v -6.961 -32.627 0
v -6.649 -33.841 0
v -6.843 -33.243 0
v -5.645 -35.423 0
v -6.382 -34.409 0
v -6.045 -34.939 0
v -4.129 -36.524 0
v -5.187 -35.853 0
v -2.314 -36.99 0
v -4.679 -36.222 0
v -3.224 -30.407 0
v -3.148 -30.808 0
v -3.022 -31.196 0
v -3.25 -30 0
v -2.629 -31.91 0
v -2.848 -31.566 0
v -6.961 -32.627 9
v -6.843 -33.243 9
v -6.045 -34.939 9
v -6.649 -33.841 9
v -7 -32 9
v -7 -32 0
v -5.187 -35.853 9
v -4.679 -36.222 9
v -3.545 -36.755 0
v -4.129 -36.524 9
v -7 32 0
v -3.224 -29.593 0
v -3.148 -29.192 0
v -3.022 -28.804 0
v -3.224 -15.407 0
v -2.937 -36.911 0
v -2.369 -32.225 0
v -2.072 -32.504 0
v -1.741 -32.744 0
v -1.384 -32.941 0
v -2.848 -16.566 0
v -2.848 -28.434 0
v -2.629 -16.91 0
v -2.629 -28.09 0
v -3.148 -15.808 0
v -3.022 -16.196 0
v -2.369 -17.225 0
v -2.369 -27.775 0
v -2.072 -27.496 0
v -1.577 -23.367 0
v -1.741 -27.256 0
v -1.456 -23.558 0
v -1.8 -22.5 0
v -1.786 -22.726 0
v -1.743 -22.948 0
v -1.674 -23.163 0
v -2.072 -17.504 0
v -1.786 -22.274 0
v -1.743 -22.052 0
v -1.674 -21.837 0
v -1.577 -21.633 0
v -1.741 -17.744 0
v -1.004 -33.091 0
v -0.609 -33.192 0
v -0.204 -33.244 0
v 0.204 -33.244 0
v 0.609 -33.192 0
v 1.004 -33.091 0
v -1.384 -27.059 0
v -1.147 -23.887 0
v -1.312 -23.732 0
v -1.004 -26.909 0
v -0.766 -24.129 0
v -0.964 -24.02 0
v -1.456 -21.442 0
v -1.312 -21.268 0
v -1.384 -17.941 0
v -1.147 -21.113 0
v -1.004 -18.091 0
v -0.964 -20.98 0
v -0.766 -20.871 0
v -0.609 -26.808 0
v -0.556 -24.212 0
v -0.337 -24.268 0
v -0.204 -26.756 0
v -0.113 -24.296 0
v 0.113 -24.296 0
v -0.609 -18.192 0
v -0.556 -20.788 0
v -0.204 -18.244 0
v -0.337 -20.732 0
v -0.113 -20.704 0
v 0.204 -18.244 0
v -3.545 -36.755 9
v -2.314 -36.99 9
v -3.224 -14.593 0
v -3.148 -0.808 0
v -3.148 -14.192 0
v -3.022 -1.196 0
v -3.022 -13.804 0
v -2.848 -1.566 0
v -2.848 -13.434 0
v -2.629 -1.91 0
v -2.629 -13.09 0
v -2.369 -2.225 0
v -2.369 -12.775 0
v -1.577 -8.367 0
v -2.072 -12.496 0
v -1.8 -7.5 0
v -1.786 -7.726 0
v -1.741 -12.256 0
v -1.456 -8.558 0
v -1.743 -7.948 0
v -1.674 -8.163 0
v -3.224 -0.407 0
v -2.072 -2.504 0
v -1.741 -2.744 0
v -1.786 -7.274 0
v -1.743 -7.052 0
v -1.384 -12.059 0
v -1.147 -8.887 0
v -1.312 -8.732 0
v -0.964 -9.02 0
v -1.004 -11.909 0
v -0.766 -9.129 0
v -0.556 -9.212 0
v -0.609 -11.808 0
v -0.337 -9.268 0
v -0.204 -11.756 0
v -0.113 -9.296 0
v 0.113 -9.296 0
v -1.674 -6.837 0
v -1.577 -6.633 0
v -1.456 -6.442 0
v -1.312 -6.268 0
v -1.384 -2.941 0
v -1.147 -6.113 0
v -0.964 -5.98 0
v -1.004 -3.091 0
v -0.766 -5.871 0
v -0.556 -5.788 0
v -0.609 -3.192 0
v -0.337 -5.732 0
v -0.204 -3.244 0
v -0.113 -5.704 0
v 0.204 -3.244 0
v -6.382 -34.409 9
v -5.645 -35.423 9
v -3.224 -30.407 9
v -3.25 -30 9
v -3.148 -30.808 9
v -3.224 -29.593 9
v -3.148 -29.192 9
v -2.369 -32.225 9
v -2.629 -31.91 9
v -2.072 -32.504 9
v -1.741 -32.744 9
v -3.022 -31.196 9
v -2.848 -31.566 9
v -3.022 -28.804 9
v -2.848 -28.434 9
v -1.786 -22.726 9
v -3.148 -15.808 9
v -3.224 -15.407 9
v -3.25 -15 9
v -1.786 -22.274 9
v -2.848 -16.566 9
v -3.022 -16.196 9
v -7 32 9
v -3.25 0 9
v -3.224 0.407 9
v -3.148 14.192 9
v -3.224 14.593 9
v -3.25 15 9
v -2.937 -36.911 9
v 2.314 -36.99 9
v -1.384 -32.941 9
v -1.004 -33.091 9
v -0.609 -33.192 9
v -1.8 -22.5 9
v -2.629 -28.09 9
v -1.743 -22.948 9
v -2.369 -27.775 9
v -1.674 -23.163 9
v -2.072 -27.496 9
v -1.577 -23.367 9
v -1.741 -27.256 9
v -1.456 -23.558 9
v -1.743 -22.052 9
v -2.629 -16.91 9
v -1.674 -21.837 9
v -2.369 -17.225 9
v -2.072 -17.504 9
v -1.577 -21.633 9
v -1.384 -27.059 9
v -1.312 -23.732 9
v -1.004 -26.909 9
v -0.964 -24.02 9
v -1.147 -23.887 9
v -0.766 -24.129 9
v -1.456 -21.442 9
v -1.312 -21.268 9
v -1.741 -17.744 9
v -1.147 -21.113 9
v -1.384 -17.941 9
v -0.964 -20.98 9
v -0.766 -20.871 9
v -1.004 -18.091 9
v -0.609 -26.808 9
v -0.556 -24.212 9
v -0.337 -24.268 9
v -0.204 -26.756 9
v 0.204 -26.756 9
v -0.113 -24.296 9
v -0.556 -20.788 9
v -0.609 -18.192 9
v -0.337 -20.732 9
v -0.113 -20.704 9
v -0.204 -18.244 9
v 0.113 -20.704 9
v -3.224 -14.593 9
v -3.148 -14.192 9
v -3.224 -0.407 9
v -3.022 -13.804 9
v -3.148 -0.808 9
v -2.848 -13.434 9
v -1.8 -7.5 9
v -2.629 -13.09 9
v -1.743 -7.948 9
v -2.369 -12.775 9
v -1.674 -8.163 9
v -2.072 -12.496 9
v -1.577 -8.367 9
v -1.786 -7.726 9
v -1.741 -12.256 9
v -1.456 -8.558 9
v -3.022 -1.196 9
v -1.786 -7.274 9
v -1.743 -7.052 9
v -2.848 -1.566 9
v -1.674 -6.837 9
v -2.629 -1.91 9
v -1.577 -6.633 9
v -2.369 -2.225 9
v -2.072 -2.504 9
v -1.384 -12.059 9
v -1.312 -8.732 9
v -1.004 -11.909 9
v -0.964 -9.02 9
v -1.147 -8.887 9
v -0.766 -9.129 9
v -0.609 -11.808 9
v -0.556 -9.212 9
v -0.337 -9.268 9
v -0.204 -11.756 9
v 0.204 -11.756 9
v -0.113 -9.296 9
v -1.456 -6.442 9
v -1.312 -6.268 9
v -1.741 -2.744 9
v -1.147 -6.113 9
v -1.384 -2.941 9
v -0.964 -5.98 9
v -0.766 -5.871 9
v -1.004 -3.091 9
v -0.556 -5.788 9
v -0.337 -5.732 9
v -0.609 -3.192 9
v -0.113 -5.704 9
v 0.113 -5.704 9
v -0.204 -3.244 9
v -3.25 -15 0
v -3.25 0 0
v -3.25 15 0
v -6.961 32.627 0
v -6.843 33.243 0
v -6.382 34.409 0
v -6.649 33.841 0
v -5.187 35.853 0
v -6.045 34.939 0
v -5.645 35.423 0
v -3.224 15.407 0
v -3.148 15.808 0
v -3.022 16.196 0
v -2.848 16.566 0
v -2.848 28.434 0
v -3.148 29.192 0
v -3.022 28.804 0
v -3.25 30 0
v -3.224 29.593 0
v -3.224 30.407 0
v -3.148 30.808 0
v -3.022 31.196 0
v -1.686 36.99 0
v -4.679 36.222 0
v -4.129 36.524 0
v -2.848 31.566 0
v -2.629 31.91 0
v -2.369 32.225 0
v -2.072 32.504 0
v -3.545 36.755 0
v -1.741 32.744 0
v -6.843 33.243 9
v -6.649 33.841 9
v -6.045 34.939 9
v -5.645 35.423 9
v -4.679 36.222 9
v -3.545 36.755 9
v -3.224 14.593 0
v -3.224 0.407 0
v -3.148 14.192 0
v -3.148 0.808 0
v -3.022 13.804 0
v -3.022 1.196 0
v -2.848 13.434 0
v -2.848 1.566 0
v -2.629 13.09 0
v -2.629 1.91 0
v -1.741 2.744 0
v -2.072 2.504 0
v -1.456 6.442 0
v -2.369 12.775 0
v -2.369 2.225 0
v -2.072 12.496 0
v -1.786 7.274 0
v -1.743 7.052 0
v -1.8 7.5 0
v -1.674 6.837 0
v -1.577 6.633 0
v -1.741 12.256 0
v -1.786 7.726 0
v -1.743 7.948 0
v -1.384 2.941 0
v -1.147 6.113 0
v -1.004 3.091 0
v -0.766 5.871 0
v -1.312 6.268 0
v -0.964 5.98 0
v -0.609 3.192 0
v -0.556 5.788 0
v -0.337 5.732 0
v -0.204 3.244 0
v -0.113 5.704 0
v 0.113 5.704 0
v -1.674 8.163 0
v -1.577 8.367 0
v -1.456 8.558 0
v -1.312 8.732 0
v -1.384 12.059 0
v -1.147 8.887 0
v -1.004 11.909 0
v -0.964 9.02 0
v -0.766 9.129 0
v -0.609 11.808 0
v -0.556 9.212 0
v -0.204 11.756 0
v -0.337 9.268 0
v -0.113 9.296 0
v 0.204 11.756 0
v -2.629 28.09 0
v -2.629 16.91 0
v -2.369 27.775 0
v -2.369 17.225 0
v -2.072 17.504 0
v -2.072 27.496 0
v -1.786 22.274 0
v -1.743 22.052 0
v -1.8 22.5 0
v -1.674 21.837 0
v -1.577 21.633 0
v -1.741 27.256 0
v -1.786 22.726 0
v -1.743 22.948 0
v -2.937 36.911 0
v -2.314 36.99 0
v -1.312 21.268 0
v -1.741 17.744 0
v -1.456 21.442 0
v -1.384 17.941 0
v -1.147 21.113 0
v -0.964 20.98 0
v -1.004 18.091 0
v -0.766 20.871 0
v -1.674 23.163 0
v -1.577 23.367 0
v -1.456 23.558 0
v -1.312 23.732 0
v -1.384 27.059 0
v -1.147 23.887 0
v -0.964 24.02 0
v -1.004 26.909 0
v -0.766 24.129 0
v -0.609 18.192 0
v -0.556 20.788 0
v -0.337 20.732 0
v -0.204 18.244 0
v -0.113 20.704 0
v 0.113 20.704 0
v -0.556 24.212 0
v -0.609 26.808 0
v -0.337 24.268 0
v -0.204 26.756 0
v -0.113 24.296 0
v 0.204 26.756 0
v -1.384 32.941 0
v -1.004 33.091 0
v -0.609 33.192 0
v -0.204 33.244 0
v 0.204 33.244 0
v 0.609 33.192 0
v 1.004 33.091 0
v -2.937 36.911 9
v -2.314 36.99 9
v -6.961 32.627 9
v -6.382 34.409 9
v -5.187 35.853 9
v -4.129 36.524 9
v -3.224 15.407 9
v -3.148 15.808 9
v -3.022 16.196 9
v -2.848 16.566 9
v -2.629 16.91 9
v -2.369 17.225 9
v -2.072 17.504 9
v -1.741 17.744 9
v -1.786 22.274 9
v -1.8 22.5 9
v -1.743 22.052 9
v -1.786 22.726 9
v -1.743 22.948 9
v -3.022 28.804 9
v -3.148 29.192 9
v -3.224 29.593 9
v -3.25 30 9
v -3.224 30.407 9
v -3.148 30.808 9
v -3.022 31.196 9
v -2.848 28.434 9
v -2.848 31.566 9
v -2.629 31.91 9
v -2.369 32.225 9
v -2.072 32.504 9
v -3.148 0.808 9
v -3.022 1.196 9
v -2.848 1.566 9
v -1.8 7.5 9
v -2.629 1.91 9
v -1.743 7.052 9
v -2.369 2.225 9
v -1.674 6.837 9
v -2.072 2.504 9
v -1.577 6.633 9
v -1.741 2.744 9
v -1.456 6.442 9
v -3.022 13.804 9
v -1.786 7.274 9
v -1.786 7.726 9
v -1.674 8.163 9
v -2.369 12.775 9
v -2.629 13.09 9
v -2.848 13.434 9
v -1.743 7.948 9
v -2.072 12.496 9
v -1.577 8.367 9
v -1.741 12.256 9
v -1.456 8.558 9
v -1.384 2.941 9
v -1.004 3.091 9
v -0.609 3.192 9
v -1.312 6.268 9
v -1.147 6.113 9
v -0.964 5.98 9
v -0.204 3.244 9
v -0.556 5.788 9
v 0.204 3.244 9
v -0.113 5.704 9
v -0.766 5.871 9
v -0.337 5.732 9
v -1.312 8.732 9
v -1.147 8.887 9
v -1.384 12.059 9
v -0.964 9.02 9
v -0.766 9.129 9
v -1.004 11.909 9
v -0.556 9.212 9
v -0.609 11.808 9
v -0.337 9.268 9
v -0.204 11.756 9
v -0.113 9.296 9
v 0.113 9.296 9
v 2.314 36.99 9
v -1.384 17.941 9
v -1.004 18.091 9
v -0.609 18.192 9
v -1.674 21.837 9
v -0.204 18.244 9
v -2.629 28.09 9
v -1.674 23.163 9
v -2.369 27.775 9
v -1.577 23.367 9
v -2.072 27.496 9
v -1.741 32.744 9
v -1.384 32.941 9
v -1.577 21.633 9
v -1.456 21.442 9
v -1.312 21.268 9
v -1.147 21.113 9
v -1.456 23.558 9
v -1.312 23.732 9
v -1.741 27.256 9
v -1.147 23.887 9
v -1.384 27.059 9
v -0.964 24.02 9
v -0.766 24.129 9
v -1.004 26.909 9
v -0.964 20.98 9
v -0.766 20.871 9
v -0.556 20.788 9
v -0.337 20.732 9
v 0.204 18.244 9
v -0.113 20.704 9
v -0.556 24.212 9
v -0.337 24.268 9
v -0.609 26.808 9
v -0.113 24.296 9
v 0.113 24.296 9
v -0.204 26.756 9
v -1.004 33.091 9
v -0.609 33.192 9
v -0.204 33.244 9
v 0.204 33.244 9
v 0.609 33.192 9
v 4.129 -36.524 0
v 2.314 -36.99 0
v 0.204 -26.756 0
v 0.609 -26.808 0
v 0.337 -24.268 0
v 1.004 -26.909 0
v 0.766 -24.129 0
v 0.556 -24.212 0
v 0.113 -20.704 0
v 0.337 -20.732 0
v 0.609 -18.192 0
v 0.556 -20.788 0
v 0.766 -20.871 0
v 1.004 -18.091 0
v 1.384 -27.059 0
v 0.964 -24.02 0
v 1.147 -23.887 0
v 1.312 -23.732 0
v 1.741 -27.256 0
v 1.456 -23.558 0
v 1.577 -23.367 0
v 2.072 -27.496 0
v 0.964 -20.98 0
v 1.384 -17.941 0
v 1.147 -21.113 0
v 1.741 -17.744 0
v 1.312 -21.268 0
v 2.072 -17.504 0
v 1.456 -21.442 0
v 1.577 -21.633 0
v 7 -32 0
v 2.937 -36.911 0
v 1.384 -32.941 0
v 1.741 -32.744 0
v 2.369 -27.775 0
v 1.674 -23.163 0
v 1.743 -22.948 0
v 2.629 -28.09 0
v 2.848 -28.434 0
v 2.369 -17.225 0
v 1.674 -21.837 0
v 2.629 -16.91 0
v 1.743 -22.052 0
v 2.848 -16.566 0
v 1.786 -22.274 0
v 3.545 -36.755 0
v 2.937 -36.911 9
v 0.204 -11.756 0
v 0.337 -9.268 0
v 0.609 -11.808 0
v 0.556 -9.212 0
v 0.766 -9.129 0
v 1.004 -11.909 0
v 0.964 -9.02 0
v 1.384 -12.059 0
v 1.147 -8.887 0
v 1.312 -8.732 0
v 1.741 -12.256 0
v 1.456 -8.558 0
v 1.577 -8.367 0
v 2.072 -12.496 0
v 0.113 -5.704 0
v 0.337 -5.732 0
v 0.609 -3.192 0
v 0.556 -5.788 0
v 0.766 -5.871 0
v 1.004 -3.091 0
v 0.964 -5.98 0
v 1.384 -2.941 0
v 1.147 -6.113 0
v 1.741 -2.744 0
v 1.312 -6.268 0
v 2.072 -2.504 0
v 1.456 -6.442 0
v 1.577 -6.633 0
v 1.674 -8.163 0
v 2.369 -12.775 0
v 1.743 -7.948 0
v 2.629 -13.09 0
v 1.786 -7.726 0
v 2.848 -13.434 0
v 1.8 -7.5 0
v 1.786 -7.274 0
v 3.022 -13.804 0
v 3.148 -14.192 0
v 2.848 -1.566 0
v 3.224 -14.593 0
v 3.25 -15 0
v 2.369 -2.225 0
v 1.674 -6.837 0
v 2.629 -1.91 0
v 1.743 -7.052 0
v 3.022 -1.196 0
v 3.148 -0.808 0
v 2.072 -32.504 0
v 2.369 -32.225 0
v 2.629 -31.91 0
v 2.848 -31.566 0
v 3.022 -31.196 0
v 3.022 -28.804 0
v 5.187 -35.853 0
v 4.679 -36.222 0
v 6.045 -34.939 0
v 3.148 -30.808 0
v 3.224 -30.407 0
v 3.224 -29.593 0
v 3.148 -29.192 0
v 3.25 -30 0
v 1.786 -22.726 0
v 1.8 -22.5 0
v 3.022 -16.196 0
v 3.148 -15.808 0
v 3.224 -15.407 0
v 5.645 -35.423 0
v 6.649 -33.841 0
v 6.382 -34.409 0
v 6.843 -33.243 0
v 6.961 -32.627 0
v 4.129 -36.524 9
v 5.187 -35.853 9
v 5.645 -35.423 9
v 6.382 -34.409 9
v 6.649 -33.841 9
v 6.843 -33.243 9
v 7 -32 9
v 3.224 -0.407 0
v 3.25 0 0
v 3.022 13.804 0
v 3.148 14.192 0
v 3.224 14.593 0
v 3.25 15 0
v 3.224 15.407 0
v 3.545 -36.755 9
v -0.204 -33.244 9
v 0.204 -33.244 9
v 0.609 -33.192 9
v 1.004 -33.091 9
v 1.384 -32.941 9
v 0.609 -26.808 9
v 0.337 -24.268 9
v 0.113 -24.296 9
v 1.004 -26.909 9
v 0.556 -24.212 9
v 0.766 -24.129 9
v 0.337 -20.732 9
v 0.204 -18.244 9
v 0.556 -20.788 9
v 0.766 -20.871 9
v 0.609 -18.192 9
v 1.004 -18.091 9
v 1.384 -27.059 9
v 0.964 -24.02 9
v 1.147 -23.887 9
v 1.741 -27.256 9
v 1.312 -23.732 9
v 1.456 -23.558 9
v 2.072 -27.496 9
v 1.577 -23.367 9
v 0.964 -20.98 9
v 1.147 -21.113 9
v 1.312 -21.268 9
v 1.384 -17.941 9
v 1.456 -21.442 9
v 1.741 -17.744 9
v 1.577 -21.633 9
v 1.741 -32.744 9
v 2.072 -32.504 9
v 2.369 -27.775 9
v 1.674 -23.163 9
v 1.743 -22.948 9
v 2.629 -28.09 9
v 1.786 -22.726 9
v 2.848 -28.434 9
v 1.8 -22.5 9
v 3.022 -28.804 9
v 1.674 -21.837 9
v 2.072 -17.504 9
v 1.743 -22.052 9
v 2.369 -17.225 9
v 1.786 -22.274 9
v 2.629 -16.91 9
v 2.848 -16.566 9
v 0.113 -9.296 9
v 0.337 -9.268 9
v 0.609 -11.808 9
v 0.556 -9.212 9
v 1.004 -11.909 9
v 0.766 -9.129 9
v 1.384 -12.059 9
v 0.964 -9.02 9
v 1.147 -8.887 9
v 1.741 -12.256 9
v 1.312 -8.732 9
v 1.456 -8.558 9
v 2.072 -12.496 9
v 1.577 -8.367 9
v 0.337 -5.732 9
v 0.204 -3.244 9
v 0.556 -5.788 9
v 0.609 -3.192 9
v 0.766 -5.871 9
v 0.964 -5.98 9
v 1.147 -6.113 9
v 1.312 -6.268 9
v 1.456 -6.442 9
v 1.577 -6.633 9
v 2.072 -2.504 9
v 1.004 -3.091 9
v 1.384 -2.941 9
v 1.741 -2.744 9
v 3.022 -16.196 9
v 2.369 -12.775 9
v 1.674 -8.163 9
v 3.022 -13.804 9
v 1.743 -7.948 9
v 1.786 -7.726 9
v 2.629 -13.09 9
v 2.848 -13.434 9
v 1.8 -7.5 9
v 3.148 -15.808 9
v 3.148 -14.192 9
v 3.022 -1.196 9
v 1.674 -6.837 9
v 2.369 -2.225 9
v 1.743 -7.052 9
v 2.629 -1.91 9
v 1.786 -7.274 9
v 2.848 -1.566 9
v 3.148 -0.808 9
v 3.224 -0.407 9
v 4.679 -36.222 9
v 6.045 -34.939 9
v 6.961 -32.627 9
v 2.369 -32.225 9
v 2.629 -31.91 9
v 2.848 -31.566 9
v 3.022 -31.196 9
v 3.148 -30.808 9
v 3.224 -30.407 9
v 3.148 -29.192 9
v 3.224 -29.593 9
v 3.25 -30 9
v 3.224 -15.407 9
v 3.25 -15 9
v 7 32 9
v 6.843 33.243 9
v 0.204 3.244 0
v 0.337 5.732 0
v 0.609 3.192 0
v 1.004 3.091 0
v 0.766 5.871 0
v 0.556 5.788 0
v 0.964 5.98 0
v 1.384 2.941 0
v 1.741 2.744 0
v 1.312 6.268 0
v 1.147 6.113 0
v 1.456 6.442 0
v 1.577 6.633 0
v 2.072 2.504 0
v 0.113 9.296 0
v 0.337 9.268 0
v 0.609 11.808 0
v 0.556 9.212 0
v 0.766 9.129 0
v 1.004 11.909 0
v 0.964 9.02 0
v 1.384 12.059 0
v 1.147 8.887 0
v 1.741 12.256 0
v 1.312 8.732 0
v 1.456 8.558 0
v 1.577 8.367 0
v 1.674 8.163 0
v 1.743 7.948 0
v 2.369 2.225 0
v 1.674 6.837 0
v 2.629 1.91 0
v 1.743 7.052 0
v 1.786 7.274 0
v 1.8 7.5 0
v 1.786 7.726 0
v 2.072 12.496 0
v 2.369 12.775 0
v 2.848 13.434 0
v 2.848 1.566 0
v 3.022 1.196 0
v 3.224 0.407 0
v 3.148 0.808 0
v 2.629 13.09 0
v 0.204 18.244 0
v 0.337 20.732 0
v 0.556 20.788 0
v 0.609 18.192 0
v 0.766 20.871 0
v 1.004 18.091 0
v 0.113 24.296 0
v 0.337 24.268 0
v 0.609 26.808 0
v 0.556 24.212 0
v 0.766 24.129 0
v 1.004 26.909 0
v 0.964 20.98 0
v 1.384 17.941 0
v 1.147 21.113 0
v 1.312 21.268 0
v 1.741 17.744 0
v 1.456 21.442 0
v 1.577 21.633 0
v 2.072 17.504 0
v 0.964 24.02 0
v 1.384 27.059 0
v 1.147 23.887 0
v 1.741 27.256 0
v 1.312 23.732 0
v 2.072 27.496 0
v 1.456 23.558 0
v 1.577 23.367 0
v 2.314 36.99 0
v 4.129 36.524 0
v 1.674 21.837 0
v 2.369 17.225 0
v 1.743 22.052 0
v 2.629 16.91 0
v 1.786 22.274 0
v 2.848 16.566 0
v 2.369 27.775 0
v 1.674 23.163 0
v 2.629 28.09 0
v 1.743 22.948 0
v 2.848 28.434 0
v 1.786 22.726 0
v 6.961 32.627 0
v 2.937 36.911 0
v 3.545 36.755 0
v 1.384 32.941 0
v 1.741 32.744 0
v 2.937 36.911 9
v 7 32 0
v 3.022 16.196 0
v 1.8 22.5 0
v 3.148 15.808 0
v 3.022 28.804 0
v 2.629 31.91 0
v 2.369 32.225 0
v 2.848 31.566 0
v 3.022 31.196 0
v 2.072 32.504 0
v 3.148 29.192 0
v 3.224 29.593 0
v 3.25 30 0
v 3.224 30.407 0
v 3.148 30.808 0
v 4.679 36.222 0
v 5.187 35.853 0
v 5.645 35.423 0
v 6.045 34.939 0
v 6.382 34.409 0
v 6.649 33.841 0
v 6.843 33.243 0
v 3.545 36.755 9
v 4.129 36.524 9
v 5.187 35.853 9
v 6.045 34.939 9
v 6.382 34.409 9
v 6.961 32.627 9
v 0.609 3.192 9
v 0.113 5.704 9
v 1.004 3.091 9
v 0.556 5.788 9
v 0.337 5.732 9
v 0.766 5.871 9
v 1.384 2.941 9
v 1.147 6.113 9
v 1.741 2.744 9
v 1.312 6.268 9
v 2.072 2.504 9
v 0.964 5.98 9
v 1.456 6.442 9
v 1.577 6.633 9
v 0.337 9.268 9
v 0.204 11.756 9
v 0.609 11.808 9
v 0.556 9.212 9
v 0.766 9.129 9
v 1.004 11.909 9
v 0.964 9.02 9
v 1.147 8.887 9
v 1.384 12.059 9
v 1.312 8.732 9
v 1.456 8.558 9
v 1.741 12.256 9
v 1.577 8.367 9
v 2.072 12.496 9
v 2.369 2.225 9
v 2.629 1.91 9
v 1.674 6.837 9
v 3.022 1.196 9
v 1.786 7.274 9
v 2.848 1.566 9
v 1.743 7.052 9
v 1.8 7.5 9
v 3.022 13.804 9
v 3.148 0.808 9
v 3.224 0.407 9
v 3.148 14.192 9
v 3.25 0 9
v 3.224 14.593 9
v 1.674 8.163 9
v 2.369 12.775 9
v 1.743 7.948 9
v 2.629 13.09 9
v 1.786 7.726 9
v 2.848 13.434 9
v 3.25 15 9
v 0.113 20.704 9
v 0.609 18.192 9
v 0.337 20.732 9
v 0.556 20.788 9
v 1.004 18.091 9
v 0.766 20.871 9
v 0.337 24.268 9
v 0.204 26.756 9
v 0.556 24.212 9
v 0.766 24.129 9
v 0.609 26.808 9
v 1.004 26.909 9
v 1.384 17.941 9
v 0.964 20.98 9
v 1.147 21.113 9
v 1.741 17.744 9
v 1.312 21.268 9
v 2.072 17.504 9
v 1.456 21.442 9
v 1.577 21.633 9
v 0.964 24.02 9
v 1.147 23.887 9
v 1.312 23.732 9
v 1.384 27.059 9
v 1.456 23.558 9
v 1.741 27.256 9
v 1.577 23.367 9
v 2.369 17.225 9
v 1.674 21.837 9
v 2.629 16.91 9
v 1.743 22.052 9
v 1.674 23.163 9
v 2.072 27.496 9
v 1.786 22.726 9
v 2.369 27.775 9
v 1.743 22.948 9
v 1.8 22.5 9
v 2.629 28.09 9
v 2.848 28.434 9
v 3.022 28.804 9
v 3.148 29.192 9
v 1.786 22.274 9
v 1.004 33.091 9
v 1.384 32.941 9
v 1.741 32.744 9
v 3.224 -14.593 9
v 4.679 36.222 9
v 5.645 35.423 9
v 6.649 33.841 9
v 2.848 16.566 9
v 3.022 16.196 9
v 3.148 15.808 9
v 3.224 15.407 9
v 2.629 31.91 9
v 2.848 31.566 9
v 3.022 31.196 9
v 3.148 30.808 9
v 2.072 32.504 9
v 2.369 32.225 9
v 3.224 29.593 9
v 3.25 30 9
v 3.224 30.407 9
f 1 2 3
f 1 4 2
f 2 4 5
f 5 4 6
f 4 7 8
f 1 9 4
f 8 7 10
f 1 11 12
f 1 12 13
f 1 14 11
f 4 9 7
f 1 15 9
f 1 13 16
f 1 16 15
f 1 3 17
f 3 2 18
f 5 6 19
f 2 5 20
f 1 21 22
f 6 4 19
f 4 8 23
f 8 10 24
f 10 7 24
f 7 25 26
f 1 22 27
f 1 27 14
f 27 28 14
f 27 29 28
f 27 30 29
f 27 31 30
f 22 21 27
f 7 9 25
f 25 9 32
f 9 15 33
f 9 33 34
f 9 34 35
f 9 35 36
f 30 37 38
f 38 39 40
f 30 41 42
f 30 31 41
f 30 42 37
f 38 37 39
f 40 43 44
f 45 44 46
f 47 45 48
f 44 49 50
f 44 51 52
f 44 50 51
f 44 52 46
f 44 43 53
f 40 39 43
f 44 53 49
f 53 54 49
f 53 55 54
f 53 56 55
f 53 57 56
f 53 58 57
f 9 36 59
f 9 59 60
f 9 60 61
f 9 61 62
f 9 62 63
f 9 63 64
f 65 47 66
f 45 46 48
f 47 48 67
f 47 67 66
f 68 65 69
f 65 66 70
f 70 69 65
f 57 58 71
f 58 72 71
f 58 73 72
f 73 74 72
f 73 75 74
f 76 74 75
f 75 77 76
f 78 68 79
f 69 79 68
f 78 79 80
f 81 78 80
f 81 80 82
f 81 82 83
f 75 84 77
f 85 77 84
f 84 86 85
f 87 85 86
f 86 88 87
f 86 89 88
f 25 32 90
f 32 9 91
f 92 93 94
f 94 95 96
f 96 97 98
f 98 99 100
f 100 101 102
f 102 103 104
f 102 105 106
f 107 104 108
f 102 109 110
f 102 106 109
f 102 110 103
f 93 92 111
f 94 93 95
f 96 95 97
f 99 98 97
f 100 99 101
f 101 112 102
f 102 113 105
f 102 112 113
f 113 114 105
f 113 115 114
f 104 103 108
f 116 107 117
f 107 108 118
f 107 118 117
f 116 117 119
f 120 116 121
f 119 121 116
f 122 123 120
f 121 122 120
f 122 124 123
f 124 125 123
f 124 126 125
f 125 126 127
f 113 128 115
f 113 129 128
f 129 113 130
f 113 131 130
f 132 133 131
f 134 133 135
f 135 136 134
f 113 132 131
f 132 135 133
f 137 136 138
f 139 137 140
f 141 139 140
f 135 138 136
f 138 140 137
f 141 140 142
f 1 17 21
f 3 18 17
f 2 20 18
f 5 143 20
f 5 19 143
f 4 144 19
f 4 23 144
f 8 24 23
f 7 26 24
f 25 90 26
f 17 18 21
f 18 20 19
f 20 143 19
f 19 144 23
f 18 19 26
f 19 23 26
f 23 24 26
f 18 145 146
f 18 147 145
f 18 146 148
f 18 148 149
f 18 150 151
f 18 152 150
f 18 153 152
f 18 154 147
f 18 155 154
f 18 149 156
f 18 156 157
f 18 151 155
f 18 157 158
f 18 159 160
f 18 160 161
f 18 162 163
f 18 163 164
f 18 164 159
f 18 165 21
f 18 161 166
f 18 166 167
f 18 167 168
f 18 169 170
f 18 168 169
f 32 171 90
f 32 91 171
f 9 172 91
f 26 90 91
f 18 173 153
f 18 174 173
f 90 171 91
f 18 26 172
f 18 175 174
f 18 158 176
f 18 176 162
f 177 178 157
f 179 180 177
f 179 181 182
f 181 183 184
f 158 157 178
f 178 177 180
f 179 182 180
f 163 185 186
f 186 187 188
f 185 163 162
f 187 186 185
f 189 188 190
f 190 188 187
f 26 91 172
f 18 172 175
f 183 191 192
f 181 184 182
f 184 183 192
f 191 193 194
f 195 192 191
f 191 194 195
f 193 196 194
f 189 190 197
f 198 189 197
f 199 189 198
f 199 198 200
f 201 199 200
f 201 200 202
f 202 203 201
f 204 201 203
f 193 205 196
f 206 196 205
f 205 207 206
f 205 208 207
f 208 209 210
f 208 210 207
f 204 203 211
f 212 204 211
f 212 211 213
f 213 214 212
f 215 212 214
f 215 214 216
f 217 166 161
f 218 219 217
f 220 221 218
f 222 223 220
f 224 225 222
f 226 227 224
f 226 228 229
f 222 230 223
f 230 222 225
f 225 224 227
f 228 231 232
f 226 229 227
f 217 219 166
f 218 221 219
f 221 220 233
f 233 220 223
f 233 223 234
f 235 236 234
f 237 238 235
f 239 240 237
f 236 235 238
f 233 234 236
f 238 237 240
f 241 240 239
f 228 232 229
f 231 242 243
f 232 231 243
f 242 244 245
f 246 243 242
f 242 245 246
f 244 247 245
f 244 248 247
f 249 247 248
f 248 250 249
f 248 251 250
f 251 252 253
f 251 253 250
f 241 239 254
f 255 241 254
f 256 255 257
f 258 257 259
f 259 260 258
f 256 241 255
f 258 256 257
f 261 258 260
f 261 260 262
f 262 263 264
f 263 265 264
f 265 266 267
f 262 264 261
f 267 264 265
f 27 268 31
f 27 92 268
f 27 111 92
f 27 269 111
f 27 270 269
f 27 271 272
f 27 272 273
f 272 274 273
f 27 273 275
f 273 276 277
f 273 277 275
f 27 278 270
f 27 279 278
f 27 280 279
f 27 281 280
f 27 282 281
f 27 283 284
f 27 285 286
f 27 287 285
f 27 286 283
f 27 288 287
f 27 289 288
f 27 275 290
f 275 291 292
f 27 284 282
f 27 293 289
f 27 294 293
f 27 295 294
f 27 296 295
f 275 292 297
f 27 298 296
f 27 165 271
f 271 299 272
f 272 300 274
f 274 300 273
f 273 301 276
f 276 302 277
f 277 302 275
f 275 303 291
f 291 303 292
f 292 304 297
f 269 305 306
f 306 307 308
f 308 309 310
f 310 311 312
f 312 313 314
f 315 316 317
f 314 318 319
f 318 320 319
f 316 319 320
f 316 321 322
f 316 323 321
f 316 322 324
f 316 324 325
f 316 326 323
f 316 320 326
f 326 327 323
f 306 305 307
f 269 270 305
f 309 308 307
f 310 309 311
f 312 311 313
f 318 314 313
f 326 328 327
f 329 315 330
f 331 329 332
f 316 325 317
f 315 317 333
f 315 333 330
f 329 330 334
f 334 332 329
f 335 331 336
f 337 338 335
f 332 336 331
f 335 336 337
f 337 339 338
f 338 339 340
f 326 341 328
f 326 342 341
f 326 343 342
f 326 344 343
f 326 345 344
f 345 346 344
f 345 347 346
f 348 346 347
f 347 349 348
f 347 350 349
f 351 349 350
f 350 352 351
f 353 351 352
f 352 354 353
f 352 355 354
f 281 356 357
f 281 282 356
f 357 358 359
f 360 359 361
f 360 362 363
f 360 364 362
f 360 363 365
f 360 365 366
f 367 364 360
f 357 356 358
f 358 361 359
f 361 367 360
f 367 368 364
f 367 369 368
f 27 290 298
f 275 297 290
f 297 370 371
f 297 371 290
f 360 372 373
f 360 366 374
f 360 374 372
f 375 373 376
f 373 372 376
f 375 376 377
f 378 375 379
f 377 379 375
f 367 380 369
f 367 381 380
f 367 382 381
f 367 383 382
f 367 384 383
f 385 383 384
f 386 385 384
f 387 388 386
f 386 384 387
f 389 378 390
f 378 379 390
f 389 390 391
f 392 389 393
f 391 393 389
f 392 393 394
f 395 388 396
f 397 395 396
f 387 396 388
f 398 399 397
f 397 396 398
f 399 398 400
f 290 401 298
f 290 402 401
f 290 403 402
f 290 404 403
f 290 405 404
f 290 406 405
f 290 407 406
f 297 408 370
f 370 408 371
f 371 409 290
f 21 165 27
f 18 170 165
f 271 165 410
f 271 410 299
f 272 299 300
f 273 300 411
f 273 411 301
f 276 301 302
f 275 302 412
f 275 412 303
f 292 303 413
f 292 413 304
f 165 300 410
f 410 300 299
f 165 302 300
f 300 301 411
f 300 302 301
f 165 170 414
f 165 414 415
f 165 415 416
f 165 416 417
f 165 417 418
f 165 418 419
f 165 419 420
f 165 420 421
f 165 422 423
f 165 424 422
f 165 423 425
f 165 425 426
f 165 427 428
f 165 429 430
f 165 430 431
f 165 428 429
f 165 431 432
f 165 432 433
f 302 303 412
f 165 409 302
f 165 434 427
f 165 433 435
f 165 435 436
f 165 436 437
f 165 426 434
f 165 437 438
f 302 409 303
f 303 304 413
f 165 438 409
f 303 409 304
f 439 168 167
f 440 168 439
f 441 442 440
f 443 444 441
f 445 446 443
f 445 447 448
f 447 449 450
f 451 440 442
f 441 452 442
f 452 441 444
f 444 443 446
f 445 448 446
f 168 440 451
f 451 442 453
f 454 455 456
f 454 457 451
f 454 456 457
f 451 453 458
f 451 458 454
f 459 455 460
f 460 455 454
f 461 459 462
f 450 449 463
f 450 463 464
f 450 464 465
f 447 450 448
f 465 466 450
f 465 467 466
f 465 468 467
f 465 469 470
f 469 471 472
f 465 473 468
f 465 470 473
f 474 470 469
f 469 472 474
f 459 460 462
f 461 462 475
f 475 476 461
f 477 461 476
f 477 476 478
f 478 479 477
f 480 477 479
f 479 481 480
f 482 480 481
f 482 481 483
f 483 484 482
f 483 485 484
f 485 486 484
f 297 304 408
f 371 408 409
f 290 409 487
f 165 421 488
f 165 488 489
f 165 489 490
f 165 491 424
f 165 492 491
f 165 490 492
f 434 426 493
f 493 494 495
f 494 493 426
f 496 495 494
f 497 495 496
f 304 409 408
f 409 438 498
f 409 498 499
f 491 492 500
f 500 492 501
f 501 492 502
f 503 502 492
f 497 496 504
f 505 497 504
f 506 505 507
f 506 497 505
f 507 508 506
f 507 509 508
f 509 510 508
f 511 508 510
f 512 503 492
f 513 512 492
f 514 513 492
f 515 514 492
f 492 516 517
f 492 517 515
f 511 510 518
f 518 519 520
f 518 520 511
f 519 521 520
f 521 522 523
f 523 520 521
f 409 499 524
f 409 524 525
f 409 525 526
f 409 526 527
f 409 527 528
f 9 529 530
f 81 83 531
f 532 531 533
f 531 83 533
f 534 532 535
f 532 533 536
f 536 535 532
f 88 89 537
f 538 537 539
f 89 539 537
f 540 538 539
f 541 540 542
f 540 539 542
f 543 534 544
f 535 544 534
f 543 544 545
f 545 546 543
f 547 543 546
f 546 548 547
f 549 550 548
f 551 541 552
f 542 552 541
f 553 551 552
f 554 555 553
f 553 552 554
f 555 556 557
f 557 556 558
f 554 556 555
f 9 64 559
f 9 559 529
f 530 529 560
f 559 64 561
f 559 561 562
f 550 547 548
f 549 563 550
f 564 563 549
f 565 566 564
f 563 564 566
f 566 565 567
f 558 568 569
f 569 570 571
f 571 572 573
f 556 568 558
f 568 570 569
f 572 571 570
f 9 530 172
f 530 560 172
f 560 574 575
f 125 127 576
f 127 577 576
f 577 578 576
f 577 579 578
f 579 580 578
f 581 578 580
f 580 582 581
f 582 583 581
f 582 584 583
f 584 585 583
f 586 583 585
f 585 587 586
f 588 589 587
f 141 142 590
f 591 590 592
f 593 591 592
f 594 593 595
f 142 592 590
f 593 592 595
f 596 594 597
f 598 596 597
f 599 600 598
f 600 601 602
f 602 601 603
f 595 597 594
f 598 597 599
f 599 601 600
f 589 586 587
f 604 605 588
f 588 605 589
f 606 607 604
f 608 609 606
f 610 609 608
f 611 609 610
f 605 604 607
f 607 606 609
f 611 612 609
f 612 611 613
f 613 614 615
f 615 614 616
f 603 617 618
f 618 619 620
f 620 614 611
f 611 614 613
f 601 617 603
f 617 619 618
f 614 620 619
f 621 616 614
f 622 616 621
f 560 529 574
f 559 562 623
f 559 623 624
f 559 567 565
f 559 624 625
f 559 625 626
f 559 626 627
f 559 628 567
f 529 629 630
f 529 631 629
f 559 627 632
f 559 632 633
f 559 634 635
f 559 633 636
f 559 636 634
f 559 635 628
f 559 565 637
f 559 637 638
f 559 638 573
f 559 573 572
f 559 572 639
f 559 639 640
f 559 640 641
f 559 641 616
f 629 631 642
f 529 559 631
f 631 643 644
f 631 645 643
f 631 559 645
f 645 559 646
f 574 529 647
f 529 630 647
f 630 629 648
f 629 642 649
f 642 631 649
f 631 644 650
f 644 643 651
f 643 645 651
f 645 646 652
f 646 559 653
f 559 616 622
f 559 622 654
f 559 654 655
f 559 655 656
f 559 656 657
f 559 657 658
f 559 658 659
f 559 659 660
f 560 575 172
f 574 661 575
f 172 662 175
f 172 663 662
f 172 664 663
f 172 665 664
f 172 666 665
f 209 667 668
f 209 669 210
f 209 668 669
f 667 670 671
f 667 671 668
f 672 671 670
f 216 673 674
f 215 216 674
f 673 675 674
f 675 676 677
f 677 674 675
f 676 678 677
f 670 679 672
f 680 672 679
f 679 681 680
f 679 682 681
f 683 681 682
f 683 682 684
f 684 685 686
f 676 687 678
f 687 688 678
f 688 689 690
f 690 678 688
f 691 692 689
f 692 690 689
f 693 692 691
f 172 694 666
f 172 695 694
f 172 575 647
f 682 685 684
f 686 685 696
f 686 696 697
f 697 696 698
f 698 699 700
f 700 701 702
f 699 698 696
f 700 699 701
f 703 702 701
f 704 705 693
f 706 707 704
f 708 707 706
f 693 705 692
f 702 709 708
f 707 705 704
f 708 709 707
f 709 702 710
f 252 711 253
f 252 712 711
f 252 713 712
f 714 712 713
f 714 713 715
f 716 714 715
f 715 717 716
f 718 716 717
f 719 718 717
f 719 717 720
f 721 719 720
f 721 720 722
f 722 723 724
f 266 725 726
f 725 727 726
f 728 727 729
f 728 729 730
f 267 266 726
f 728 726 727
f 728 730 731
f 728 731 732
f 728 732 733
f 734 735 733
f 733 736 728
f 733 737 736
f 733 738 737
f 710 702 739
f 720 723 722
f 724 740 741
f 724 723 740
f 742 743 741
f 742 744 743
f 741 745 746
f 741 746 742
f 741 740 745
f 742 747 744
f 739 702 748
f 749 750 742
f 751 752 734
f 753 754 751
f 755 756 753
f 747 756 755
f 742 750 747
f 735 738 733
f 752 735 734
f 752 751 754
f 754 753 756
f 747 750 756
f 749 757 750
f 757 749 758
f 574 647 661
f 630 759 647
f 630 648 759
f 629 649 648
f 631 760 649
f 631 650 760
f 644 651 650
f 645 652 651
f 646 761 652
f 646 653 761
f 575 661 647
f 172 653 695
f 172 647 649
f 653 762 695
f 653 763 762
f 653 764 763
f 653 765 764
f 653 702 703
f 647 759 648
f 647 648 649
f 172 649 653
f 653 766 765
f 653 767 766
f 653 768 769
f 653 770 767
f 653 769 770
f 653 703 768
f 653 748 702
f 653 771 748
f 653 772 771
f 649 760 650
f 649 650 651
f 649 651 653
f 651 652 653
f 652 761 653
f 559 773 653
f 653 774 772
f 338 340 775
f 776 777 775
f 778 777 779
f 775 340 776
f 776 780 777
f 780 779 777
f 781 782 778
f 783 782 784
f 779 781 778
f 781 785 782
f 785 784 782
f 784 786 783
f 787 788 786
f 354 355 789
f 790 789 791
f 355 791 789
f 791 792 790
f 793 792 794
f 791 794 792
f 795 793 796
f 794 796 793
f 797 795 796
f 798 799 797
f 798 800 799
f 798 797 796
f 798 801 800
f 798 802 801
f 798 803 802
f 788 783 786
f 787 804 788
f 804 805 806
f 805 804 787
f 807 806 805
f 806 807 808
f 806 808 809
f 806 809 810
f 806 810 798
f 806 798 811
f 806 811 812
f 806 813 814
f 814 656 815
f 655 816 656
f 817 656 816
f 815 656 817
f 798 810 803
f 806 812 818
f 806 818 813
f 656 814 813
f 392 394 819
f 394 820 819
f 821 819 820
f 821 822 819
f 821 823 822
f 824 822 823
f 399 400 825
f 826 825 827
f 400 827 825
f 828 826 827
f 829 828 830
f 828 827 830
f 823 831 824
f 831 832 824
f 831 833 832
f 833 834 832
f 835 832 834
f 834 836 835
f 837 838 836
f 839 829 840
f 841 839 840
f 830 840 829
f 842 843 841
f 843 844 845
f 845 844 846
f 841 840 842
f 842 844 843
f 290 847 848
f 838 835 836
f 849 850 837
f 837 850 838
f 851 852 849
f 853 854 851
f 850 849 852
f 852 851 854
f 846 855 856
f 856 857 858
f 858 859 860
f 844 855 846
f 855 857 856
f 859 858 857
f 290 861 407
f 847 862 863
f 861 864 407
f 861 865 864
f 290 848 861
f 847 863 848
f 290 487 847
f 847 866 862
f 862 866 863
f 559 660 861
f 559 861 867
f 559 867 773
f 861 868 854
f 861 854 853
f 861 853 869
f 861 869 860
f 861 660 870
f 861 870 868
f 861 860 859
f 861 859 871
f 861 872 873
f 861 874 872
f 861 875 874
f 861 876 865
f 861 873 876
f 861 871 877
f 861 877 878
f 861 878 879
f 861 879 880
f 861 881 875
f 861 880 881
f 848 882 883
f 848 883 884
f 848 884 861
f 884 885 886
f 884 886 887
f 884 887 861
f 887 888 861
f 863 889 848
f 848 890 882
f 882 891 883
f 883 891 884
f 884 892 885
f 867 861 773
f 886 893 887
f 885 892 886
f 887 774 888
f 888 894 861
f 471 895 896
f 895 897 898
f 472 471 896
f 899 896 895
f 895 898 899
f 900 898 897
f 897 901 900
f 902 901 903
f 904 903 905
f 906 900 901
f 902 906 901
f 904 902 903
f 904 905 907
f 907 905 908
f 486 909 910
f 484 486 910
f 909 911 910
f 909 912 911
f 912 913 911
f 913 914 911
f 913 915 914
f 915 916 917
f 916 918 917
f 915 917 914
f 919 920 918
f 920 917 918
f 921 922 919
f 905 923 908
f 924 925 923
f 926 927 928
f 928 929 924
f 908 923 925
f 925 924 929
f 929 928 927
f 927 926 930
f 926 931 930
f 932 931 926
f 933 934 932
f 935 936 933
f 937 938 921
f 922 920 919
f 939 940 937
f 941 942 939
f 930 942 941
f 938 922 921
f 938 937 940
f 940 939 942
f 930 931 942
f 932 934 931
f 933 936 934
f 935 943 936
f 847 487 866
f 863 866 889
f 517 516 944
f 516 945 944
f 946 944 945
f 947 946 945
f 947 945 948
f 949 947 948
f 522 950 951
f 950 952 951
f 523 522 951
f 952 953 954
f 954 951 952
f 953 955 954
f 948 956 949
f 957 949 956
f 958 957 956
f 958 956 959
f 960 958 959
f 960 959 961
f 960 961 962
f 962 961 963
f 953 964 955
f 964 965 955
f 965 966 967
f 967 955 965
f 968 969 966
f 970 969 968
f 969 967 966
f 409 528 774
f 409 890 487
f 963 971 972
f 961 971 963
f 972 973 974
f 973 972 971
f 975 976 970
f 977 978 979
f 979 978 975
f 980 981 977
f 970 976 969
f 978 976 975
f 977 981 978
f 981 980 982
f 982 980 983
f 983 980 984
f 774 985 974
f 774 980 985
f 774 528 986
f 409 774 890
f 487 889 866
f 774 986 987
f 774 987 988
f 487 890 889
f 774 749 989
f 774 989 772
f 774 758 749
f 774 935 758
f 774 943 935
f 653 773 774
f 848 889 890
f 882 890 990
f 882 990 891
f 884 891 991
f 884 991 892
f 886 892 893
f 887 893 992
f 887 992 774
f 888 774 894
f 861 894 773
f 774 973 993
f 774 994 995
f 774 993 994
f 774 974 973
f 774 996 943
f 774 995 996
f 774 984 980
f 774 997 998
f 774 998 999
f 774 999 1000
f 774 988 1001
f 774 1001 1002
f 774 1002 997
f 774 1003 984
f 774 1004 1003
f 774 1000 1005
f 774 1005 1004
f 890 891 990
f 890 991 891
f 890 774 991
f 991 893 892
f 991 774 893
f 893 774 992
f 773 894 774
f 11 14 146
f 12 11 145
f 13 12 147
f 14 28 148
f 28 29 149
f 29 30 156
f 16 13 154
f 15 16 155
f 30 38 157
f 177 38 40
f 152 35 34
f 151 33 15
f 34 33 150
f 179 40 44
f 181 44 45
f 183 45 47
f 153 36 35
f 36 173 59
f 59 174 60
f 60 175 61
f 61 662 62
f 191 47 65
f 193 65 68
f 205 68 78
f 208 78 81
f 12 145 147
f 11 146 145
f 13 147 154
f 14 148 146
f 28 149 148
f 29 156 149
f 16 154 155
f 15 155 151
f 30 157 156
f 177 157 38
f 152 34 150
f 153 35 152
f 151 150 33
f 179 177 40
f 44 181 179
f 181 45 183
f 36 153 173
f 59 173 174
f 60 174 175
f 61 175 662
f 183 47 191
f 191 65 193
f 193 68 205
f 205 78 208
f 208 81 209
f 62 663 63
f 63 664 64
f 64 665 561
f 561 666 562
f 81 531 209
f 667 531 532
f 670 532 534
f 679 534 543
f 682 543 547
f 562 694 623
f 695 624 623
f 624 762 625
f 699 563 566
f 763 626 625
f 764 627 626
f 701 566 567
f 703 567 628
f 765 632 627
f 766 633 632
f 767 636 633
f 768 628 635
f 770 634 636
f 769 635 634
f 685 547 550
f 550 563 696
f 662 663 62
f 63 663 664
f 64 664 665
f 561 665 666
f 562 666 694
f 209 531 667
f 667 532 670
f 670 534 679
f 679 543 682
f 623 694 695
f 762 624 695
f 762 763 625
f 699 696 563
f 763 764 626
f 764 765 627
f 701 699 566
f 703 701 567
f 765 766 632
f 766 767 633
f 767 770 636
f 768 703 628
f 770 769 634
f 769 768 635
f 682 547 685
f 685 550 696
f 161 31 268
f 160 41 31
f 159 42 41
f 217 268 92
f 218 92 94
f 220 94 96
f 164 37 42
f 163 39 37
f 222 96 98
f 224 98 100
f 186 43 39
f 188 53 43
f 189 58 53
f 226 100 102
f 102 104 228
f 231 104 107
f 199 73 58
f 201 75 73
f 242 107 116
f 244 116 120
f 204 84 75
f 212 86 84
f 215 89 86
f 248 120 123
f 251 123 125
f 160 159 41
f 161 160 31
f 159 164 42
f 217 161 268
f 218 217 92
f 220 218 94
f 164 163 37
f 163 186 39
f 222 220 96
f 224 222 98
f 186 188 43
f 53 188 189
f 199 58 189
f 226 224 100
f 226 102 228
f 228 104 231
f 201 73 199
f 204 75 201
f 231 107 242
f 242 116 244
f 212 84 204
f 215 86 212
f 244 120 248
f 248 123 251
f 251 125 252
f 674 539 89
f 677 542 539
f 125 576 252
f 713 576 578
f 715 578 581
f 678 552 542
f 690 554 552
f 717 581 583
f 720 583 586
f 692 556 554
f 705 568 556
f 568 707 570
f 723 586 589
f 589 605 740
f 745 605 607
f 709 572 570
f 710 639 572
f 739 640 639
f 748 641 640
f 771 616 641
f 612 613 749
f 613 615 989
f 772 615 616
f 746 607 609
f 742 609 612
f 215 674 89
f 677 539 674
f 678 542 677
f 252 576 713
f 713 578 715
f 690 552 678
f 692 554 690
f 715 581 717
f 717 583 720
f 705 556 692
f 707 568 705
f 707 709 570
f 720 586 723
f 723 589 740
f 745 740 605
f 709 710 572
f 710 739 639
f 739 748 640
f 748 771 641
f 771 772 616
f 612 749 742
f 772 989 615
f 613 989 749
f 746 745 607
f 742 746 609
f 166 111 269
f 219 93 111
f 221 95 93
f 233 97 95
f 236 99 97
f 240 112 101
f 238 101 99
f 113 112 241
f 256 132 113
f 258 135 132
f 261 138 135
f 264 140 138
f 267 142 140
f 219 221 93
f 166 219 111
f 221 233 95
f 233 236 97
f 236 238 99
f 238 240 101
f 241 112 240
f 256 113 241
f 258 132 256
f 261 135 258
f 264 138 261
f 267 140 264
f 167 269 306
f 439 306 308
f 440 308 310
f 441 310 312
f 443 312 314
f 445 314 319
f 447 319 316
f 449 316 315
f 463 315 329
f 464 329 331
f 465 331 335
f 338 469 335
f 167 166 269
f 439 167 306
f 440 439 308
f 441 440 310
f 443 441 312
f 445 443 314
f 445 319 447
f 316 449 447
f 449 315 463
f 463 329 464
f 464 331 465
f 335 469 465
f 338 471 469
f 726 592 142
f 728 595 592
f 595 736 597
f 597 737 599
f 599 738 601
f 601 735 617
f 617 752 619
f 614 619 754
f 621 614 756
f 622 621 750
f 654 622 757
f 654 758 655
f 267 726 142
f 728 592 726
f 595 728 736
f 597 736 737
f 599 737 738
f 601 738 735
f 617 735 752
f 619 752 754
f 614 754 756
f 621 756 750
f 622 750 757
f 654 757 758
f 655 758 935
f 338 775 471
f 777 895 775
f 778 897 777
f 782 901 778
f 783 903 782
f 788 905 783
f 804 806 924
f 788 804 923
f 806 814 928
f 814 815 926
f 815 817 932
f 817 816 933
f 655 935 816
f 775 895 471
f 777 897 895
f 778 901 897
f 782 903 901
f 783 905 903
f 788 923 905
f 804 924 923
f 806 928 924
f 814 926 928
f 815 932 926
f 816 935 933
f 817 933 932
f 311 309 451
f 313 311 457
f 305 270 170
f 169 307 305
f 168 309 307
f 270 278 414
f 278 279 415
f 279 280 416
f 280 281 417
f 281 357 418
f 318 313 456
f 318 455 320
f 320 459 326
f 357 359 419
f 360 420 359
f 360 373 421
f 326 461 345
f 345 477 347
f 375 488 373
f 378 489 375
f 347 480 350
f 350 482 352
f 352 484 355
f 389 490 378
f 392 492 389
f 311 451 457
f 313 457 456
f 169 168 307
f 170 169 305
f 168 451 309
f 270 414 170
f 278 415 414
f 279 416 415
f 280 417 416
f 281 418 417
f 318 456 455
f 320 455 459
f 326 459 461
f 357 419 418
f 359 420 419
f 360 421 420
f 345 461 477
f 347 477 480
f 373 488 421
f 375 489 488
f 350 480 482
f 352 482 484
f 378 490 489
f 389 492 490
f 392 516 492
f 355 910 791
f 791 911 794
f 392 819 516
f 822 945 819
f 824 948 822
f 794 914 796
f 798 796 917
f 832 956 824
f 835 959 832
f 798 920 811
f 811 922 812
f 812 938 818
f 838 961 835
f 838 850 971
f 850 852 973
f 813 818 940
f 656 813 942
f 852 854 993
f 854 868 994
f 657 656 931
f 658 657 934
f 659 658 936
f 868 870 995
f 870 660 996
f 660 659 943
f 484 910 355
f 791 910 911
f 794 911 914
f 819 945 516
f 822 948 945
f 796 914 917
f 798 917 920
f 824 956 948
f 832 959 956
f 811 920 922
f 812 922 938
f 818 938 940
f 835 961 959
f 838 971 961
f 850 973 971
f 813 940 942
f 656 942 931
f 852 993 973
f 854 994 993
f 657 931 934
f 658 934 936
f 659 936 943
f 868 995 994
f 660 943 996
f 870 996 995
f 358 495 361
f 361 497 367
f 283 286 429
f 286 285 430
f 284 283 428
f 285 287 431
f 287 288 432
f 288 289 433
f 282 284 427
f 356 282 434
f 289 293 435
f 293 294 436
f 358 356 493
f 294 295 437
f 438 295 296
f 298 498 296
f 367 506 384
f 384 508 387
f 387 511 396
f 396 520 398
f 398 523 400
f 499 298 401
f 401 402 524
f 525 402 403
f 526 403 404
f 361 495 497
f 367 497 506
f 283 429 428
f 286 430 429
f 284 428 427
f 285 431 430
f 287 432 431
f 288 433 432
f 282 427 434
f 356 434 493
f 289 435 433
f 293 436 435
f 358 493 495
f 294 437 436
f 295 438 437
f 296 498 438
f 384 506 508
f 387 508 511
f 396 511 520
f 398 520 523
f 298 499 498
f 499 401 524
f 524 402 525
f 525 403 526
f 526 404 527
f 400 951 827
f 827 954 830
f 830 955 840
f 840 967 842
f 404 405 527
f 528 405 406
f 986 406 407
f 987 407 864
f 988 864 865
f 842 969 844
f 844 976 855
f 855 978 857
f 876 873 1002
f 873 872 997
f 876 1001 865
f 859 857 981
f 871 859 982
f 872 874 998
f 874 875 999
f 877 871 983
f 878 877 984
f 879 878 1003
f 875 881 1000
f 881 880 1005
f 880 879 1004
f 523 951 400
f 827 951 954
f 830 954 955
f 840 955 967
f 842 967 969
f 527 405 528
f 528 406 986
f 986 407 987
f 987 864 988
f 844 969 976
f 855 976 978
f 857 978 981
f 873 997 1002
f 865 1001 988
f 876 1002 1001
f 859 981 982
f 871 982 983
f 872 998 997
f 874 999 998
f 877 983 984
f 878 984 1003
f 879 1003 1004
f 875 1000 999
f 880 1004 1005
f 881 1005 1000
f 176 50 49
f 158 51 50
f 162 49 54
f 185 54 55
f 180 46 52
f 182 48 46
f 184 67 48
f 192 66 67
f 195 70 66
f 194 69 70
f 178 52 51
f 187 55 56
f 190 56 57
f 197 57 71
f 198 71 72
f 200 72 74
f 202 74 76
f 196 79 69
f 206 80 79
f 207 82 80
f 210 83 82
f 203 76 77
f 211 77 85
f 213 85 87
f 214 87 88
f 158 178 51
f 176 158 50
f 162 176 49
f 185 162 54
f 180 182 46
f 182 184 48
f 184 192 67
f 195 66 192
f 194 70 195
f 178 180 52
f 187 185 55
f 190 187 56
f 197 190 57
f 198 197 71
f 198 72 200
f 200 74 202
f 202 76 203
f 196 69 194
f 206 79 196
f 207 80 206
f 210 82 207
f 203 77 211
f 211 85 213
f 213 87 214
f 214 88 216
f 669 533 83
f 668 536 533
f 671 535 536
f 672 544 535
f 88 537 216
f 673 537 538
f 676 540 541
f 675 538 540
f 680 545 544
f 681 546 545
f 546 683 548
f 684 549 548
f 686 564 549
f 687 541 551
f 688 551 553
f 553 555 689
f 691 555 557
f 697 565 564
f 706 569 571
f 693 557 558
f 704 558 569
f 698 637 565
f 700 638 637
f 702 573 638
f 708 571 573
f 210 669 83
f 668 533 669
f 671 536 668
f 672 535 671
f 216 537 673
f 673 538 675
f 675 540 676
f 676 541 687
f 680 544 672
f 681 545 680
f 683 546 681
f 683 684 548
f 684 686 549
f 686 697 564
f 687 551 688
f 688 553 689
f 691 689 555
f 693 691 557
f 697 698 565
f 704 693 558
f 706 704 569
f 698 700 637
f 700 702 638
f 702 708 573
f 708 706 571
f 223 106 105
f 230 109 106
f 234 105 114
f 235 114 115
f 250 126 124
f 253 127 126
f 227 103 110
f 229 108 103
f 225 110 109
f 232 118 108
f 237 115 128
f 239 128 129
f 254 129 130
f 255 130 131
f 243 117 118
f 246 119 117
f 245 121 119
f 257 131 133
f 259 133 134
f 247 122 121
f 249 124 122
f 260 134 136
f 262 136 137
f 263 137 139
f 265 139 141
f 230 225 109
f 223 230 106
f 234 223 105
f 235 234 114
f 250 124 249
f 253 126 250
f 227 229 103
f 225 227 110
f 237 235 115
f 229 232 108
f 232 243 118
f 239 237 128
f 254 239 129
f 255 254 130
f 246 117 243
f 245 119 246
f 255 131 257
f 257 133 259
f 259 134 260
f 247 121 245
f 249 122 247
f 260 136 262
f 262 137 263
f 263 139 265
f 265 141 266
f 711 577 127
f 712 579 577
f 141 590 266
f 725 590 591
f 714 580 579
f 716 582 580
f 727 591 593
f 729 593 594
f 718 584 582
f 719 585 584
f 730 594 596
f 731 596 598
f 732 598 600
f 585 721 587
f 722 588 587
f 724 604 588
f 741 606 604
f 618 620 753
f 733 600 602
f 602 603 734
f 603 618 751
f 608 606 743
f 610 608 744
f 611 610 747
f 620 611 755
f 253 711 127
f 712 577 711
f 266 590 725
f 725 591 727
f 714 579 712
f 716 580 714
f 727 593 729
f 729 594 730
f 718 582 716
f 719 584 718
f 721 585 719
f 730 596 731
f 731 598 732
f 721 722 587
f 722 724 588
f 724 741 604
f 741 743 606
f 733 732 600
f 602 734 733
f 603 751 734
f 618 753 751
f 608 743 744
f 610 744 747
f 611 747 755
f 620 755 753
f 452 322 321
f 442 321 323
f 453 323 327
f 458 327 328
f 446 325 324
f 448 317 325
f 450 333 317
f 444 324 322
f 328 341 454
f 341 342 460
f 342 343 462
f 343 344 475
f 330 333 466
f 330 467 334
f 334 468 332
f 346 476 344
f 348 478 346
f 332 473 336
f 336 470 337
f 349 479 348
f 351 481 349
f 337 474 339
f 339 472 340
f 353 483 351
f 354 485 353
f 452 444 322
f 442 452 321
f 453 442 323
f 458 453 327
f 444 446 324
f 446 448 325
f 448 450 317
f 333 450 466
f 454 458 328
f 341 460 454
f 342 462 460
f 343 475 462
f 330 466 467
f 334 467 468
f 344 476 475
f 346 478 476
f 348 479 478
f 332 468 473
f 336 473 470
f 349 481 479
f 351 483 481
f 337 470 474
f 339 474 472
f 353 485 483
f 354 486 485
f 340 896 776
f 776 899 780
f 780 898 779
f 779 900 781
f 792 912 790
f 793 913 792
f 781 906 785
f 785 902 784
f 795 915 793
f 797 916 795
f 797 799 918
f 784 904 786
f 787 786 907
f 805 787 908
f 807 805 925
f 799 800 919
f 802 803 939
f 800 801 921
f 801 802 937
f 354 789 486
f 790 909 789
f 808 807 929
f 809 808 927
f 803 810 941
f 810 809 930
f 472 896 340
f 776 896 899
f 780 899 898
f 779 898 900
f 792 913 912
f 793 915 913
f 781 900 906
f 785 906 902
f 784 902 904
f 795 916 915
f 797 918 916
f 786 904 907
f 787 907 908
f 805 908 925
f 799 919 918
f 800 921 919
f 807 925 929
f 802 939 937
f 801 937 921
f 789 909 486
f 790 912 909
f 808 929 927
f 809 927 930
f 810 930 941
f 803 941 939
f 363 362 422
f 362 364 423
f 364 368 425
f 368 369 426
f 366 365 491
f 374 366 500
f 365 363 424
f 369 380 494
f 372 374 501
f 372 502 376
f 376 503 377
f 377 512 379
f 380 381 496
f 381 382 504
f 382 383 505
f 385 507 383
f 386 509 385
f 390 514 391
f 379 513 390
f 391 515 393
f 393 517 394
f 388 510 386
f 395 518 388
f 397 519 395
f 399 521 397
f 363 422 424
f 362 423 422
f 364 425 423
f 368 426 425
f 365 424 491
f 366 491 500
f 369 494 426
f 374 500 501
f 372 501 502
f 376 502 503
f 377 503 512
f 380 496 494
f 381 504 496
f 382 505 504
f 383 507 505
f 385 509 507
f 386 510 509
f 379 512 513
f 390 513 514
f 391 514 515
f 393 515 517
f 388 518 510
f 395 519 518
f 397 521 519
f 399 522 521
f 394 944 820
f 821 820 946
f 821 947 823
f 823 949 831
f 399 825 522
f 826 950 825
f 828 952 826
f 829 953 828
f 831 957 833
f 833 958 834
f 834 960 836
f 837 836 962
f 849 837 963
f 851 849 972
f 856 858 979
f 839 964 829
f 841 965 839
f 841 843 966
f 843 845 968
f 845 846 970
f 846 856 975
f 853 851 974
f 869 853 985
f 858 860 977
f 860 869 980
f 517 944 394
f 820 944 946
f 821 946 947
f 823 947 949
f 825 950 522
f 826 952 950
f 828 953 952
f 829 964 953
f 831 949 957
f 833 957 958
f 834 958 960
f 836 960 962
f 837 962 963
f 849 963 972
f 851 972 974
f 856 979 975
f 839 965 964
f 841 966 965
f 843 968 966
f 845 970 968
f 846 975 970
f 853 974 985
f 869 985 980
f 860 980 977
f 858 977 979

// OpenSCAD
$fn = 50;

difference() {
	union() {
		hull() {
			translate(v = [-2.0, 32.0, 0]) {
				cylinder(h = 9, r = 5);
			}
			translate(v = [2.0, 32.0, 0]) {
				cylinder(h = 9, r = 5);
			}
			translate(v = [-2.0, -32.0, 0]) {
				cylinder(h = 9, r = 5);
			}
			translate(v = [2.0, -32.0, 0]) {
				cylinder(h = 9, r = 5);
			}
		}
	}
	union() {
		translate(v = [0.0, -30.0, 0]) {
			translate(v = [0, 0, -100]) {
				cylinder(h = 200, r = 3.25);
			}
		}
		translate(v = [0.0, -15.0, 0]) {
			translate(v = [0, 0, -100]) {
				cylinder(h = 200, r = 3.25);
			}
		}
		translate(v = [0, 0, -100]) {
			cylinder(h = 200, r = 3.25);
		}
		translate(v = [0.0, 15.0, 0]) {
			translate(v = [0, 0, -100]) {
				cylinder(h = 200, r = 3.25);
			}
		}
		translate(v = [0.0, 30.0, 0]) {
			translate(v = [0, 0, -100]) {
				cylinder(h = 200, r = 3.25);
			}
		}
		translate(v = [0.0, -30.0, 0]) {
			translate(v = [0, 0, -100]) {
				cylinder(h = 200, r = 1.8);
			}
		}
		translate(v = [0.0, -22.5, 0]) {
			translate(v = [0, 0, -100]) {
				cylinder(h = 200, r = 1.8);
			}
		}
		translate(v = [0.0, -15.0, 0]) {
			translate(v = [0, 0, -100]) {
				cylinder(h = 200, r = 1.8);
			}
		}
		translate(v = [0.0, -7.5, 0]) {
			translate(v = [0, 0, -100]) {
				cylinder(h = 200, r = 1.8);
			}
		}
		translate(v = [0, 0, -100]) {
			cylinder(h = 200, r = 1.8);
		}
		translate(v = [0.0, 7.5, 0]) {
			translate(v = [0, 0, -100]) {
				cylinder(h = 200, r = 1.8);
			}
		}
		translate(v = [0.0, 15.0, 0]) {
			translate(v = [0, 0, -100]) {
				cylinder(h = 200, r = 1.8);
			}
		}
		translate(v = [0.0, 22.5, 0]) {
			translate(v = [0, 0, -100]) {
				cylinder(h = 200, r = 1.8);
			}
		}
		translate(v = [0.0, 30.0, 0]) {
			translate(v = [0, 0, -100]) {
				cylinder(h = 200, r = 1.8);
			}
		}
	}
}
